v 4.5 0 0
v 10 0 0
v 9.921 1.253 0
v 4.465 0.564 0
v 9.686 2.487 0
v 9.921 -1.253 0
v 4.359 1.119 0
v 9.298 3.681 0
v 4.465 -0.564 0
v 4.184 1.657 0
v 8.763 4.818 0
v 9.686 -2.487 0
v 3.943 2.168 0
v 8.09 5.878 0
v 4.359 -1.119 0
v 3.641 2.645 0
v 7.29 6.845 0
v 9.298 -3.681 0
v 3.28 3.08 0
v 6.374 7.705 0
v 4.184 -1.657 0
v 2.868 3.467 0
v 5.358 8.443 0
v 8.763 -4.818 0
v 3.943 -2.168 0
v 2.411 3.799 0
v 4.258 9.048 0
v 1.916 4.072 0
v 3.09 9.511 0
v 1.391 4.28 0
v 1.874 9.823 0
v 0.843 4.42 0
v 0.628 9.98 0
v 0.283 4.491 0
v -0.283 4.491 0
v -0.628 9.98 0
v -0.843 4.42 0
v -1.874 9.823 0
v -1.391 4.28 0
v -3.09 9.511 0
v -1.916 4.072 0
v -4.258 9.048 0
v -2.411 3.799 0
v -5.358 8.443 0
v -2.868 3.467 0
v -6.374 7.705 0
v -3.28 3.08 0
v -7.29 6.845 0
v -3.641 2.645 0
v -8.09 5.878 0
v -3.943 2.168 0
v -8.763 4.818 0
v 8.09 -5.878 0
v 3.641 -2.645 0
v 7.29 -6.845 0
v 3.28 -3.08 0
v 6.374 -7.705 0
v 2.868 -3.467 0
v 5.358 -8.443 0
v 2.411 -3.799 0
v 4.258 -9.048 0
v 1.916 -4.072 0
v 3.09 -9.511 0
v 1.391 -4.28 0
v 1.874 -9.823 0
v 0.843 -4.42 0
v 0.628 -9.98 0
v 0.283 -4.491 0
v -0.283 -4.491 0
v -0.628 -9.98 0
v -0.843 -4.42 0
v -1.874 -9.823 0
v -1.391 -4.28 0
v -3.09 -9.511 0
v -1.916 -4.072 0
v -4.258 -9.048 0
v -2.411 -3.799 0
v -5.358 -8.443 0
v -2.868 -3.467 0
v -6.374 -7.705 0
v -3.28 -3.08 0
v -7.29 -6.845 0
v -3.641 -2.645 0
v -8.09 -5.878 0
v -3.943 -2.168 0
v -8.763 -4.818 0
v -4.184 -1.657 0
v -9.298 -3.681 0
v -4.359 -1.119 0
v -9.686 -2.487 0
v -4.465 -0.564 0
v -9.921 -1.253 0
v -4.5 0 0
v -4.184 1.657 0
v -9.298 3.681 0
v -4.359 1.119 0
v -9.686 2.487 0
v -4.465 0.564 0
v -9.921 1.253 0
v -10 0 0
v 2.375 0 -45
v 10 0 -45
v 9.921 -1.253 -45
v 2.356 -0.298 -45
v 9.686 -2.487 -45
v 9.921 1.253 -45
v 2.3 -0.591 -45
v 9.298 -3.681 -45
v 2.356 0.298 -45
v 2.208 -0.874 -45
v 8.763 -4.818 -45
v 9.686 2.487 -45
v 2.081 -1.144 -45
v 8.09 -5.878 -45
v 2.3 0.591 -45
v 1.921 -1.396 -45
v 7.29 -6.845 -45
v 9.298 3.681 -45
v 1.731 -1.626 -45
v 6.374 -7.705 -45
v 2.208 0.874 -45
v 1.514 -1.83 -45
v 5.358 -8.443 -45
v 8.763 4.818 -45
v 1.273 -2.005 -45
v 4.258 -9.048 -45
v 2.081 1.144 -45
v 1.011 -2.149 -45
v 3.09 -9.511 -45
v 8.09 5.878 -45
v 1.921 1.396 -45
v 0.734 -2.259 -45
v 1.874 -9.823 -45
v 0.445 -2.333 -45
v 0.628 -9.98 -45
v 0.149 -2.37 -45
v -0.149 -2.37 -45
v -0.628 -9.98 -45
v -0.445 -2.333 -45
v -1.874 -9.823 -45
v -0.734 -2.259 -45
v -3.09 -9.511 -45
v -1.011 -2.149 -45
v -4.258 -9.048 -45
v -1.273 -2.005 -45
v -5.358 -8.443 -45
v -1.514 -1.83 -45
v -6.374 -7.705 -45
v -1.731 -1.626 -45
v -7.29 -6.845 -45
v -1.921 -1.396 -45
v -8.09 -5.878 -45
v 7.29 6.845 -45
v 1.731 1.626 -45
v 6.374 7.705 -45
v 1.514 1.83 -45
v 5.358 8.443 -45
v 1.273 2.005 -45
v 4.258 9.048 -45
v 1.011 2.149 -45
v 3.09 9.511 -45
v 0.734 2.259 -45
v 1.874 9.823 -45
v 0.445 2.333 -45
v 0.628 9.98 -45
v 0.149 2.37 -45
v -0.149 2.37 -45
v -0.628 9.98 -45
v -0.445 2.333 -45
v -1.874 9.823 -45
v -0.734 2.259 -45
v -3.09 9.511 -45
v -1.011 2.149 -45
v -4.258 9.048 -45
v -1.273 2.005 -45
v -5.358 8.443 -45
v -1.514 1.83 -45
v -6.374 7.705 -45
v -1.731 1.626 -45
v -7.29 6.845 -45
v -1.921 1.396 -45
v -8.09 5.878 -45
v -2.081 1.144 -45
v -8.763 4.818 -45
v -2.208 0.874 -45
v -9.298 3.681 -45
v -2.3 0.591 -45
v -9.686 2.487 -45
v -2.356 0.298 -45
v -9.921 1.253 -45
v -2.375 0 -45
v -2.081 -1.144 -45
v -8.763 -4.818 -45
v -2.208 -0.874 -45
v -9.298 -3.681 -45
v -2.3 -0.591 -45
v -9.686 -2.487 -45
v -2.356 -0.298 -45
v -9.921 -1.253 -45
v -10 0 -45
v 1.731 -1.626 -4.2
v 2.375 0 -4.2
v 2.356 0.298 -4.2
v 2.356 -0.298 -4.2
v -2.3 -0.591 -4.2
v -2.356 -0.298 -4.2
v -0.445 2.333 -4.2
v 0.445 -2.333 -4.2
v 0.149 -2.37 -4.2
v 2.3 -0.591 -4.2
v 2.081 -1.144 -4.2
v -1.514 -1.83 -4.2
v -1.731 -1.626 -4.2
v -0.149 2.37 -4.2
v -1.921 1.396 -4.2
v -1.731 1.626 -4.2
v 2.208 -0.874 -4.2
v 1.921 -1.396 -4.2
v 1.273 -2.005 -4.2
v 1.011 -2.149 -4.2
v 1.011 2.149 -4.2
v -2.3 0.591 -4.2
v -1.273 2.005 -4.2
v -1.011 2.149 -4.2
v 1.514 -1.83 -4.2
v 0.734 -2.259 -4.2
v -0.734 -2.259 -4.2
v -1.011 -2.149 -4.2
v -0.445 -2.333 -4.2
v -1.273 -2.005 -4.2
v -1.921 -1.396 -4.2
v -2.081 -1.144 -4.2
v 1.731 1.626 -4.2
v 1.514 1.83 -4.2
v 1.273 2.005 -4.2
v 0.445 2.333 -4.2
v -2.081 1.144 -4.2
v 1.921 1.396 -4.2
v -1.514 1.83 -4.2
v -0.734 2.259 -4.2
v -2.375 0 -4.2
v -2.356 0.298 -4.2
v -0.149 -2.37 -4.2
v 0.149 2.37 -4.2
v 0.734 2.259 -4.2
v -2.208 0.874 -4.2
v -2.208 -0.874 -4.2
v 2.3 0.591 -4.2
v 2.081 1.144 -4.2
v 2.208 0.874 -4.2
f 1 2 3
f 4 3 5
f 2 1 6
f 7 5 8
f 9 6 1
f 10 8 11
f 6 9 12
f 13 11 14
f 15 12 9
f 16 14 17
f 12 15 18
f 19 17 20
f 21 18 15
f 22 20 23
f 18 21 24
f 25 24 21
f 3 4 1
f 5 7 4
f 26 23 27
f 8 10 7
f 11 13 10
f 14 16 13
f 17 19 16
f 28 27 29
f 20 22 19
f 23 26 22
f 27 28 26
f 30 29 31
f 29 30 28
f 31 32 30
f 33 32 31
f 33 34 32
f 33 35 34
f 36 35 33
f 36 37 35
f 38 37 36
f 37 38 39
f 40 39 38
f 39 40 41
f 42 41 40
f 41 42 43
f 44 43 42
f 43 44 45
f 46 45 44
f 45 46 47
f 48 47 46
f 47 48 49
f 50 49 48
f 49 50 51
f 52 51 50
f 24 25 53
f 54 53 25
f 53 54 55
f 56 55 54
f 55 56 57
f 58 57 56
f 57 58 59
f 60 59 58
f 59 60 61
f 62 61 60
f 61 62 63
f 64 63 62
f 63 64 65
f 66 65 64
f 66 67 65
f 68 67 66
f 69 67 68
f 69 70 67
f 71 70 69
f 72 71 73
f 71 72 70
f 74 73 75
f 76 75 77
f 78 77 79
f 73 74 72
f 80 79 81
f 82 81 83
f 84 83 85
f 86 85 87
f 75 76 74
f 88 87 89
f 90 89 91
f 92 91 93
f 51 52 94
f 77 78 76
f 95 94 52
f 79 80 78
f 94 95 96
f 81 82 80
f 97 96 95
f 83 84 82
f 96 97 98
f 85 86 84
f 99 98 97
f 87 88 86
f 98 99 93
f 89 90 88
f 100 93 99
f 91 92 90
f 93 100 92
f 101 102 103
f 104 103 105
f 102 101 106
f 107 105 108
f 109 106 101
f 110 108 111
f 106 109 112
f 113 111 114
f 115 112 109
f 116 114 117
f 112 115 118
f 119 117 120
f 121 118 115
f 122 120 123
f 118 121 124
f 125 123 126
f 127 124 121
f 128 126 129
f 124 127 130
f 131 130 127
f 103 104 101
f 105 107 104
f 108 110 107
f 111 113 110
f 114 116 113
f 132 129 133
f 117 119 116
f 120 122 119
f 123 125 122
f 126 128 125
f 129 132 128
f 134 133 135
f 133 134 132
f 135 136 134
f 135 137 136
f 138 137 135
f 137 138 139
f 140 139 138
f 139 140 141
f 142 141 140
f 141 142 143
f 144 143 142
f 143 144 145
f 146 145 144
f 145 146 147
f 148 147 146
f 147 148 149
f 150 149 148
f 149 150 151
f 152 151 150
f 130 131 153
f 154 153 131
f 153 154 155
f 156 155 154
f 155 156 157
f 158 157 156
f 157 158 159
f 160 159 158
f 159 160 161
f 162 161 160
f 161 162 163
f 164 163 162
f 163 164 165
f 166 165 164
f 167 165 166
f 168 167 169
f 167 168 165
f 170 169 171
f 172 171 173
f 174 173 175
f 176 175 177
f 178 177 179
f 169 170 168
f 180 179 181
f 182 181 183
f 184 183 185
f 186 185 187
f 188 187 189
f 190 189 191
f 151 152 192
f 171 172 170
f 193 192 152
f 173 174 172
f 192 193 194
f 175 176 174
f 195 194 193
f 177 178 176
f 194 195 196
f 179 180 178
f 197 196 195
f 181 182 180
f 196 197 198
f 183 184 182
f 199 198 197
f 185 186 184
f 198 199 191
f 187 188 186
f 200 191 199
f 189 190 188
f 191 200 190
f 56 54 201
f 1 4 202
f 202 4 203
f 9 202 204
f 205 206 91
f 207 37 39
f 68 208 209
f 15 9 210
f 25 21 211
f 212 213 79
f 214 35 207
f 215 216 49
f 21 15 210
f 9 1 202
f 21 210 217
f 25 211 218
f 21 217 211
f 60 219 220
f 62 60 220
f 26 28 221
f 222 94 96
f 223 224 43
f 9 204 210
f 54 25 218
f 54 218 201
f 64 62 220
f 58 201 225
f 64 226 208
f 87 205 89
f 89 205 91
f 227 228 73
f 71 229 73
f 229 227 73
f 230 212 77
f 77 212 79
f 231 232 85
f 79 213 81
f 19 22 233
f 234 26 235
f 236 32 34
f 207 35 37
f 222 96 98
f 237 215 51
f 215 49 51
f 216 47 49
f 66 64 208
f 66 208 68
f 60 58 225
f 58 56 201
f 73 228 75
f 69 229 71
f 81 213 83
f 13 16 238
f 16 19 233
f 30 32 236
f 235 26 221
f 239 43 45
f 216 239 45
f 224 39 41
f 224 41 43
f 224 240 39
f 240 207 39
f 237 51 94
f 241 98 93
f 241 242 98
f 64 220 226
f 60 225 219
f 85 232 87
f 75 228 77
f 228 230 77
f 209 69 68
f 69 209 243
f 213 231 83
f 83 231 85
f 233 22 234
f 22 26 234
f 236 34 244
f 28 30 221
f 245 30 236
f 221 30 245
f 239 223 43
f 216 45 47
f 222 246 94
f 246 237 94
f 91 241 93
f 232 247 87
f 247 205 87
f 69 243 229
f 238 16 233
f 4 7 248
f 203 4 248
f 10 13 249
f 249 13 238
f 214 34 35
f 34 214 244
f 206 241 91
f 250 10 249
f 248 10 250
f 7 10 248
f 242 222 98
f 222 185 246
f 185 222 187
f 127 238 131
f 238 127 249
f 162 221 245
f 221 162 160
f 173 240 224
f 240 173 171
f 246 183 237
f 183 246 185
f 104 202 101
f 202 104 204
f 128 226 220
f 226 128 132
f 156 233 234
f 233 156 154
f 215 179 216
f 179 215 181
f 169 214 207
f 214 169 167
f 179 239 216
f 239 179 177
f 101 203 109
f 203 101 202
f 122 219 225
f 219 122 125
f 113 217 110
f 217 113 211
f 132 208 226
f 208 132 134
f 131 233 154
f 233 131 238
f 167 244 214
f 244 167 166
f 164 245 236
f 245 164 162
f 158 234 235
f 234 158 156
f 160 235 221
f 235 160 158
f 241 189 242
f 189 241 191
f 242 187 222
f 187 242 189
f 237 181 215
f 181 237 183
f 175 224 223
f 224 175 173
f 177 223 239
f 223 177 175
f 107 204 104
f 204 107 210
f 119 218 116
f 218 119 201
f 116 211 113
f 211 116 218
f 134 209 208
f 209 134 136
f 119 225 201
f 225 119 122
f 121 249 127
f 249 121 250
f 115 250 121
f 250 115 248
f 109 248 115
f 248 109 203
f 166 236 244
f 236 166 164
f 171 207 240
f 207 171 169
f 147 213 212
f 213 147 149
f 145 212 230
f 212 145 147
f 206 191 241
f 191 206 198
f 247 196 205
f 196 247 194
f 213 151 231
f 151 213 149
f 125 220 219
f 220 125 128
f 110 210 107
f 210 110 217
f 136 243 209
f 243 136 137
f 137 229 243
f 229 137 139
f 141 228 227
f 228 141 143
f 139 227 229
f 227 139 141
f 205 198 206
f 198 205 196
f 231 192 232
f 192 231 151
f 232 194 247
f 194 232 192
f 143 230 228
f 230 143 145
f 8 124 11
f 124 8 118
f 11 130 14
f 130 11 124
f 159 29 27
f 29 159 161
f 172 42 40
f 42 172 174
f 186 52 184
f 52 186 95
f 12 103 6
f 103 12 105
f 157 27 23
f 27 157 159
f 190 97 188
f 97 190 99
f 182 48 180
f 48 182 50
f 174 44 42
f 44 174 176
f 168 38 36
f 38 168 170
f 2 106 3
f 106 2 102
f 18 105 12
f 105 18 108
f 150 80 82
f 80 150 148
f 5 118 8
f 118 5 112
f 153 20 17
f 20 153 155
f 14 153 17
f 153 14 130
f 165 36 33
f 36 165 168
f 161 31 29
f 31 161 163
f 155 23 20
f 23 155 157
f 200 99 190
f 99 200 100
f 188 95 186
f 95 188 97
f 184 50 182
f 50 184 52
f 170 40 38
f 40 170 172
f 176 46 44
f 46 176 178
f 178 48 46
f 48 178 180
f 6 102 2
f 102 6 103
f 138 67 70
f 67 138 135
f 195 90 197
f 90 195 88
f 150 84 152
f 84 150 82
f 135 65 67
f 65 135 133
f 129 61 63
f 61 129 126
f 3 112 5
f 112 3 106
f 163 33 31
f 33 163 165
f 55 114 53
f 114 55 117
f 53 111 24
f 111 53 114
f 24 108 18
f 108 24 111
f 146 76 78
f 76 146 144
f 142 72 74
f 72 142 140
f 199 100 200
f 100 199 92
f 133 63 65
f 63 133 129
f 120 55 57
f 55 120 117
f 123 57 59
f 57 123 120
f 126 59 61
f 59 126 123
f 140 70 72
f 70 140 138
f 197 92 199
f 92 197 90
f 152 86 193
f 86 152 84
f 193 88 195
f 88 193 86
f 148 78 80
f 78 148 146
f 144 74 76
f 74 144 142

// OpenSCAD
$fn = 50;


difference() {
	union() {
		translate(v = [0, 0, -45.0000000000]) {
			cylinder(h = 45, r = 10.0000000000);
		}
	}
	union() {
		translate(v = [0, 0, 0]) {
			rotate(a = [0, 0, 0]) {
				difference() {
					union() {
						#translate(v = [0, 0, -45.0000000000]) {
							cylinder(h = 45, r = 2.2500000000);
						}
						#translate(v = [0, 0, -4.2000000000]) {
							cylinder(h = 4.2000000000, r = 10.0000000000, r1 = 2.3750000000, r2 = 4.5000000000);
						}
						#translate(v = [0, 0, -45.0000000000]) {
							cylinder(h = 45, r = 2.3750000000);
						}
						#translate(v = [0, 0, -45.0000000000]) {
							cylinder(h = 45, r = 2.2500000000);
						}
					}
					union();
				}
			}
		}
	}
}
